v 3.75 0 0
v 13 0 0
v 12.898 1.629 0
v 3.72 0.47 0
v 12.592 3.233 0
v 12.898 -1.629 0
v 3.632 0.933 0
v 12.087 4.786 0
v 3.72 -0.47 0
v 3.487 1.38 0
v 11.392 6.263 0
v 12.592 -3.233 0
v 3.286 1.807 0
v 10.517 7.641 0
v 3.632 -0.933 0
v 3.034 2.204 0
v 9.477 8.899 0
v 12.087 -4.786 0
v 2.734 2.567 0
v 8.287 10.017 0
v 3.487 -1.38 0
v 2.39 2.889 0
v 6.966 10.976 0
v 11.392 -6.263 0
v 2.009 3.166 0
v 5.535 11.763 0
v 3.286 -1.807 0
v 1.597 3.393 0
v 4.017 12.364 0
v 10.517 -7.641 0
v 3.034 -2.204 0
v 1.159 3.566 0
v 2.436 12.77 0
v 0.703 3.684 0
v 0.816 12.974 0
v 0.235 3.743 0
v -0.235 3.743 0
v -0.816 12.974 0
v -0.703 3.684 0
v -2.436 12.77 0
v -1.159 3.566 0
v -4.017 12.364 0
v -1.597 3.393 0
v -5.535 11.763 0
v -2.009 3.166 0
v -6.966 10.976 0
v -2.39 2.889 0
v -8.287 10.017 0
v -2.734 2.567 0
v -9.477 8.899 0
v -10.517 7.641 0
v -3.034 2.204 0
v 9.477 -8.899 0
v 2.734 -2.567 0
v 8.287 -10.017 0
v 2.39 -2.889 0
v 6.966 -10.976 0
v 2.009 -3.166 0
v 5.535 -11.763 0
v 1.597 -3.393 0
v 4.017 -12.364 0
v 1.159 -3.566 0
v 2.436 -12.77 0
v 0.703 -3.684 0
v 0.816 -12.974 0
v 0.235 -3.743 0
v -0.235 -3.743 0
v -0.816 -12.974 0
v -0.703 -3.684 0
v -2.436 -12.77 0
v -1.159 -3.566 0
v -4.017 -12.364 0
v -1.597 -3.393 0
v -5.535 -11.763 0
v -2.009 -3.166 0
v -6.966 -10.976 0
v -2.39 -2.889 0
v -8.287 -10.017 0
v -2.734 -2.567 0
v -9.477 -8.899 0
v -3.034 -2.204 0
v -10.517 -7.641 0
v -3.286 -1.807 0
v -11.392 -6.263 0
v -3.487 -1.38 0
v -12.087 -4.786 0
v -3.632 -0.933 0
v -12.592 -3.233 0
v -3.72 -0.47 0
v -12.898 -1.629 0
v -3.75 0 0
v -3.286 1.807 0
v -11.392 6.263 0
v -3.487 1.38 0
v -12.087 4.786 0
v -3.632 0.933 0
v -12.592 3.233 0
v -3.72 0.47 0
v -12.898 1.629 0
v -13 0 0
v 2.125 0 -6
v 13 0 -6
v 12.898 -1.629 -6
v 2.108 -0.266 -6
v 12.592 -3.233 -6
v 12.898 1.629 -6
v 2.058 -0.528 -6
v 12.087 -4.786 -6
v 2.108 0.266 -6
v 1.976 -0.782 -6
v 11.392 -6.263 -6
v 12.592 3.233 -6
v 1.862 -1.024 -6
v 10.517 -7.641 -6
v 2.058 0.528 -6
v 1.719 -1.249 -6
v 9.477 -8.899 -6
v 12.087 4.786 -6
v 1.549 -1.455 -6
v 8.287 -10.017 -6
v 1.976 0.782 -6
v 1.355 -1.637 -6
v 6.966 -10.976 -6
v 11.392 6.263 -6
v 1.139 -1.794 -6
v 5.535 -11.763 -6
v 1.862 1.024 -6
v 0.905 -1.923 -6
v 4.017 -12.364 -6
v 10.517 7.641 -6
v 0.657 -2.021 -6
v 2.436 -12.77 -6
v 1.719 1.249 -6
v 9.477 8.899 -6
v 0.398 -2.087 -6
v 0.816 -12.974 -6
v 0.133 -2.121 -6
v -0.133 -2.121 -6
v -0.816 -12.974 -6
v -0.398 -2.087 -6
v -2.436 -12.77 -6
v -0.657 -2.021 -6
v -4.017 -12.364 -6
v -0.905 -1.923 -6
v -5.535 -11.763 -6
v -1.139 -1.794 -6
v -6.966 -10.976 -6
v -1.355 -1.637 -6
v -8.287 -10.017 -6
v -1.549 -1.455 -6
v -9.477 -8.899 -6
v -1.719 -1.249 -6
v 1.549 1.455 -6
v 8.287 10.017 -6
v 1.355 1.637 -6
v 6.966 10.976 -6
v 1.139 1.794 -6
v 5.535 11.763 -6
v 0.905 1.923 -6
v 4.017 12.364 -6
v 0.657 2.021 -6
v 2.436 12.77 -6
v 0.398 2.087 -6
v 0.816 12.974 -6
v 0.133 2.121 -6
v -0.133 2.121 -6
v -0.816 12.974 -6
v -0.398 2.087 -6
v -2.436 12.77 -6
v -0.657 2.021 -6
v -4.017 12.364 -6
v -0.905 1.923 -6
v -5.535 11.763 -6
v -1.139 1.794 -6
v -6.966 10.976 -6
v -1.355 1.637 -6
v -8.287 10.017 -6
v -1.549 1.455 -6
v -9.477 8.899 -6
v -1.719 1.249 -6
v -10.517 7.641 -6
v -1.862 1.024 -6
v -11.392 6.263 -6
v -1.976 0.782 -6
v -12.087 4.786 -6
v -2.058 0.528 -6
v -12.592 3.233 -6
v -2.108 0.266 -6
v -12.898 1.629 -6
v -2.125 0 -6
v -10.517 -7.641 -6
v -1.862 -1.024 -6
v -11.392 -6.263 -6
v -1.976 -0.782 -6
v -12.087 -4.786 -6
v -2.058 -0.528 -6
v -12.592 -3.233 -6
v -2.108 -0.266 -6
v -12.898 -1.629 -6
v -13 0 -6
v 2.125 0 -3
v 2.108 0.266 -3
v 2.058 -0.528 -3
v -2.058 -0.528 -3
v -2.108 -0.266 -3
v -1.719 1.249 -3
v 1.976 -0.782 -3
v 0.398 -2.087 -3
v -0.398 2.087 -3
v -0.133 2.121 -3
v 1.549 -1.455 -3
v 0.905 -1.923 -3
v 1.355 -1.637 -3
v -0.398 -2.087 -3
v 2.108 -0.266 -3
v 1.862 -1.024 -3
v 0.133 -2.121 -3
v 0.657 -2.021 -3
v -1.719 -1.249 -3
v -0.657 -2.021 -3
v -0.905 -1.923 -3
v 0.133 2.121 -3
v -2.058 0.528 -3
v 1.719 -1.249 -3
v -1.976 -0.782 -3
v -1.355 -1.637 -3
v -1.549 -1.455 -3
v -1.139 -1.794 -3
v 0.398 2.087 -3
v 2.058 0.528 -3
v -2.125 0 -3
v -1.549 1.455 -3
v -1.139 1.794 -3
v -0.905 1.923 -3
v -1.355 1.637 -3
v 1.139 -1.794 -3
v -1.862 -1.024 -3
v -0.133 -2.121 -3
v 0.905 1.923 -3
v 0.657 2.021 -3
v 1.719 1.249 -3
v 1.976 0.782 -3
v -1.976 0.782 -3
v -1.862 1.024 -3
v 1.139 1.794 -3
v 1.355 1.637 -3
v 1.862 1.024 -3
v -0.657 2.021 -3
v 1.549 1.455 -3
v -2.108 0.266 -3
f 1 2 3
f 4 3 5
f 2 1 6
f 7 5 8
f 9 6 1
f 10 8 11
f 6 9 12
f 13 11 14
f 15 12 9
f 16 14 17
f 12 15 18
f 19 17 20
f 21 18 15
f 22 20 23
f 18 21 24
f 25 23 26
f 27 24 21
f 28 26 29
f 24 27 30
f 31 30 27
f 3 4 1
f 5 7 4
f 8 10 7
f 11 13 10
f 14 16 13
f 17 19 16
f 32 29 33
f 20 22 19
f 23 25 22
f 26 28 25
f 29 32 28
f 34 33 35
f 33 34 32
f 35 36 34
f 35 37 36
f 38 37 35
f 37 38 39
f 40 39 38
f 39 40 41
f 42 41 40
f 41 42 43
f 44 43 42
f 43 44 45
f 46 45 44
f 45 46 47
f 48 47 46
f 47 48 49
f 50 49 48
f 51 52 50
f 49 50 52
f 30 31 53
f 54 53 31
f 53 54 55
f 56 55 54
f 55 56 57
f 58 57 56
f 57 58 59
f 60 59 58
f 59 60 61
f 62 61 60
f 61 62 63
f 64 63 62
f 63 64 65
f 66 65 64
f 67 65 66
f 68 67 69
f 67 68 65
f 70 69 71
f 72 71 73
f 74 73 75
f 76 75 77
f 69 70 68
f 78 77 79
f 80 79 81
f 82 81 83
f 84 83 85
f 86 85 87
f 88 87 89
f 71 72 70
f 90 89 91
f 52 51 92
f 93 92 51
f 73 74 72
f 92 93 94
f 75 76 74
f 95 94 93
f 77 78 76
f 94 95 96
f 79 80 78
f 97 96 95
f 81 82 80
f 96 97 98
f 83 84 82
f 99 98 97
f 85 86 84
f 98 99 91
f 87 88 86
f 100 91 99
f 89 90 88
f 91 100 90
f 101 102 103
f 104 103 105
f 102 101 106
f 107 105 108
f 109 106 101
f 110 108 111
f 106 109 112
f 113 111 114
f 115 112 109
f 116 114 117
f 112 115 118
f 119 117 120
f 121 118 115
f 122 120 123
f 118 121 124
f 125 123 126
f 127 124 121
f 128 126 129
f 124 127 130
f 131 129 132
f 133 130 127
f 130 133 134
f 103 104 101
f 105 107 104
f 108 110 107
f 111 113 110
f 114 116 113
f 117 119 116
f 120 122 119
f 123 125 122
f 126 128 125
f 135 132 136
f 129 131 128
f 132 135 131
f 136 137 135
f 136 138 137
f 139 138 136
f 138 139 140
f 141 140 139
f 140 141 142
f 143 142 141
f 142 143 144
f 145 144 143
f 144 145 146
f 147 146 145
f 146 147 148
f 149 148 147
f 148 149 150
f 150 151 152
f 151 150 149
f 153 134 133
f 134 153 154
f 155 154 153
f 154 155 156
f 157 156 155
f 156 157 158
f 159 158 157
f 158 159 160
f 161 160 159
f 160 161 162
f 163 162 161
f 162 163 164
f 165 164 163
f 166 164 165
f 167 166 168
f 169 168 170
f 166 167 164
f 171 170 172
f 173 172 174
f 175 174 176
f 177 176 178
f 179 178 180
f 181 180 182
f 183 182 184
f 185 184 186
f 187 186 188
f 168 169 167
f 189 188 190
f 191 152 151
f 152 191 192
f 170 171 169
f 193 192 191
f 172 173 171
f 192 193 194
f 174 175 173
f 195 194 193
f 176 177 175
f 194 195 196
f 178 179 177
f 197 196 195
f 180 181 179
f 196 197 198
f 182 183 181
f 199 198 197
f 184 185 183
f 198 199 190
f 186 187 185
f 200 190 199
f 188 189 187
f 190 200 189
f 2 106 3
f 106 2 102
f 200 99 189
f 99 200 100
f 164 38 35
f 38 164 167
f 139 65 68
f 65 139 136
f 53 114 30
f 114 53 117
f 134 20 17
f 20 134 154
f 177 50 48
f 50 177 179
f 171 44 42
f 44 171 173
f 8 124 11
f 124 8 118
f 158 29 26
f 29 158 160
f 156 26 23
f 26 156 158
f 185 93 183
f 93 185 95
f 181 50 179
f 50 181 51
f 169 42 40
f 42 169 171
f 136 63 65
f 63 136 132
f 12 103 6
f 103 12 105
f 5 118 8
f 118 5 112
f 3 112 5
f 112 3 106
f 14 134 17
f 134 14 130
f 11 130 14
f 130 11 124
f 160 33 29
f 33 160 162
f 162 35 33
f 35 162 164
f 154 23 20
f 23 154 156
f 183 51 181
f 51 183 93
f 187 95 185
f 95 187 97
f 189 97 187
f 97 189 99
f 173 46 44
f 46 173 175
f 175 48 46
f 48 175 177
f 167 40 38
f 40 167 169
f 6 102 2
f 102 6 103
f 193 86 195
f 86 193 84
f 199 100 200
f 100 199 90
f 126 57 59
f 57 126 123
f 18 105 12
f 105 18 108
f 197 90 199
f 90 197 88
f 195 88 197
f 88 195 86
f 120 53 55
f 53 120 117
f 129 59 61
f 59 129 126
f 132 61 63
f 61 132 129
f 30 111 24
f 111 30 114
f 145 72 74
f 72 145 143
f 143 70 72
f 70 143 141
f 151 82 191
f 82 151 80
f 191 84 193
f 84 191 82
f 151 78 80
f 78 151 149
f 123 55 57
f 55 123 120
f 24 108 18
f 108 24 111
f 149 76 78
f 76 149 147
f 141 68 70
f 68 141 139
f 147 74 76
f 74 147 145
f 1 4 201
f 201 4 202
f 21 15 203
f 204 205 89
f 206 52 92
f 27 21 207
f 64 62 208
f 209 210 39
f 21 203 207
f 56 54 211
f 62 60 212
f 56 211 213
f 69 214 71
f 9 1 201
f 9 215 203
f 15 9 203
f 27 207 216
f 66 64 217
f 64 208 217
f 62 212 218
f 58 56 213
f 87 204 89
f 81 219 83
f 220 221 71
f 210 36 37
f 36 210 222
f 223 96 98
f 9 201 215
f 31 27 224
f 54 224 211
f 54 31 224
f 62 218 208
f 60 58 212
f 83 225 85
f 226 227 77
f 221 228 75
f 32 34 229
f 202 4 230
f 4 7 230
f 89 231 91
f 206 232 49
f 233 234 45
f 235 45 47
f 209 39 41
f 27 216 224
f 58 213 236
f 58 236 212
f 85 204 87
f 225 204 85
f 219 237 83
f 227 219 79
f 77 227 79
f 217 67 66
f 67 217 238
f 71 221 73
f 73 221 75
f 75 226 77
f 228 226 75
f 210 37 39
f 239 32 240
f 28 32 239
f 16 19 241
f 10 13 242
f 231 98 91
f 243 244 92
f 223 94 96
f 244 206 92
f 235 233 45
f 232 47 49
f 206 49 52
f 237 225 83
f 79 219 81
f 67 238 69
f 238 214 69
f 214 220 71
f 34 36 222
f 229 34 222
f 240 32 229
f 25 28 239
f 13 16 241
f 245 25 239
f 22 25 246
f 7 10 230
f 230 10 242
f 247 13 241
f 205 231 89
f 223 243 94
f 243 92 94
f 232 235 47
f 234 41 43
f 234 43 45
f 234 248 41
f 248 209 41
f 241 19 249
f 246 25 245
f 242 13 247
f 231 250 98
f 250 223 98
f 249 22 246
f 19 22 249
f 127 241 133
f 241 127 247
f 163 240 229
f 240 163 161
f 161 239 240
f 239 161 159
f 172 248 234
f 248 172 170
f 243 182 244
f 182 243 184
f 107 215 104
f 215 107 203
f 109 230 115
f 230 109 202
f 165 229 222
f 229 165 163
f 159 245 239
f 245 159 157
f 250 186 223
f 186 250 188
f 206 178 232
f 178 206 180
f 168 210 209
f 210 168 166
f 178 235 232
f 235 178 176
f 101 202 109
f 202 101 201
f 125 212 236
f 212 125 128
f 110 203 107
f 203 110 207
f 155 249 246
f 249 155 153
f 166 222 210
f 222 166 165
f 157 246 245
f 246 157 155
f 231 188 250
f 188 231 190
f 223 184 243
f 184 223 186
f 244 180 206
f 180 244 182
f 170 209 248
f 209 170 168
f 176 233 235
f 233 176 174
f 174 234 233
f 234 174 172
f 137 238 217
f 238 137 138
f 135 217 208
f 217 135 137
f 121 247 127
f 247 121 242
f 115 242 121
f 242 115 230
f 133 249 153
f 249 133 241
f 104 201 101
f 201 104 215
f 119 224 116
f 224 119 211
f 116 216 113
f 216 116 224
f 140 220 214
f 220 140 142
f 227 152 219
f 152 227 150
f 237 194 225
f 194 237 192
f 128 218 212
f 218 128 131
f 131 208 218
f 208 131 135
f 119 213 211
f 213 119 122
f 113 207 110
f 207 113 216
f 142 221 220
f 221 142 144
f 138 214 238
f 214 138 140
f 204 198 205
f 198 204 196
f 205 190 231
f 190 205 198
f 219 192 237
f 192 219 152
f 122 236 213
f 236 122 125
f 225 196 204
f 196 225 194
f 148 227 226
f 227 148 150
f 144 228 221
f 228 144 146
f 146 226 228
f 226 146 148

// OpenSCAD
$fn = 50;


difference() {
	union() {
		translate(v = [0, 0, -6.0000000000]) {
			cylinder(h = 6, r = 10.0000000000);
		}
		translate(v = [0, 0, -6.0000000000]) {
			cylinder(h = 6, r = 13.0000000000);
		}
	}
	union() {
		translate(v = [0, 0, 0]) {
			rotate(a = [0, 0, 0]) {
				difference() {
					union() {
						#translate(v = [0, 0, -6.0000000000]) {
							cylinder(h = 6, r = 2.0000000000);
						}
						#translate(v = [0, 0, -3]) {
							cylinder(h = 3, r = 10.0000000000, r1 = 2.1250000000, r2 = 3.7500000000);
						}
						#translate(v = [0, 0, -6.0000000000]) {
							cylinder(h = 6, r = 2.1250000000);
						}
						#translate(v = [0, 0, -6.0000000000]) {
							cylinder(h = 6, r = 2.0000000000);
						}
					}
					union();
				}
			}
		}
	}
}
